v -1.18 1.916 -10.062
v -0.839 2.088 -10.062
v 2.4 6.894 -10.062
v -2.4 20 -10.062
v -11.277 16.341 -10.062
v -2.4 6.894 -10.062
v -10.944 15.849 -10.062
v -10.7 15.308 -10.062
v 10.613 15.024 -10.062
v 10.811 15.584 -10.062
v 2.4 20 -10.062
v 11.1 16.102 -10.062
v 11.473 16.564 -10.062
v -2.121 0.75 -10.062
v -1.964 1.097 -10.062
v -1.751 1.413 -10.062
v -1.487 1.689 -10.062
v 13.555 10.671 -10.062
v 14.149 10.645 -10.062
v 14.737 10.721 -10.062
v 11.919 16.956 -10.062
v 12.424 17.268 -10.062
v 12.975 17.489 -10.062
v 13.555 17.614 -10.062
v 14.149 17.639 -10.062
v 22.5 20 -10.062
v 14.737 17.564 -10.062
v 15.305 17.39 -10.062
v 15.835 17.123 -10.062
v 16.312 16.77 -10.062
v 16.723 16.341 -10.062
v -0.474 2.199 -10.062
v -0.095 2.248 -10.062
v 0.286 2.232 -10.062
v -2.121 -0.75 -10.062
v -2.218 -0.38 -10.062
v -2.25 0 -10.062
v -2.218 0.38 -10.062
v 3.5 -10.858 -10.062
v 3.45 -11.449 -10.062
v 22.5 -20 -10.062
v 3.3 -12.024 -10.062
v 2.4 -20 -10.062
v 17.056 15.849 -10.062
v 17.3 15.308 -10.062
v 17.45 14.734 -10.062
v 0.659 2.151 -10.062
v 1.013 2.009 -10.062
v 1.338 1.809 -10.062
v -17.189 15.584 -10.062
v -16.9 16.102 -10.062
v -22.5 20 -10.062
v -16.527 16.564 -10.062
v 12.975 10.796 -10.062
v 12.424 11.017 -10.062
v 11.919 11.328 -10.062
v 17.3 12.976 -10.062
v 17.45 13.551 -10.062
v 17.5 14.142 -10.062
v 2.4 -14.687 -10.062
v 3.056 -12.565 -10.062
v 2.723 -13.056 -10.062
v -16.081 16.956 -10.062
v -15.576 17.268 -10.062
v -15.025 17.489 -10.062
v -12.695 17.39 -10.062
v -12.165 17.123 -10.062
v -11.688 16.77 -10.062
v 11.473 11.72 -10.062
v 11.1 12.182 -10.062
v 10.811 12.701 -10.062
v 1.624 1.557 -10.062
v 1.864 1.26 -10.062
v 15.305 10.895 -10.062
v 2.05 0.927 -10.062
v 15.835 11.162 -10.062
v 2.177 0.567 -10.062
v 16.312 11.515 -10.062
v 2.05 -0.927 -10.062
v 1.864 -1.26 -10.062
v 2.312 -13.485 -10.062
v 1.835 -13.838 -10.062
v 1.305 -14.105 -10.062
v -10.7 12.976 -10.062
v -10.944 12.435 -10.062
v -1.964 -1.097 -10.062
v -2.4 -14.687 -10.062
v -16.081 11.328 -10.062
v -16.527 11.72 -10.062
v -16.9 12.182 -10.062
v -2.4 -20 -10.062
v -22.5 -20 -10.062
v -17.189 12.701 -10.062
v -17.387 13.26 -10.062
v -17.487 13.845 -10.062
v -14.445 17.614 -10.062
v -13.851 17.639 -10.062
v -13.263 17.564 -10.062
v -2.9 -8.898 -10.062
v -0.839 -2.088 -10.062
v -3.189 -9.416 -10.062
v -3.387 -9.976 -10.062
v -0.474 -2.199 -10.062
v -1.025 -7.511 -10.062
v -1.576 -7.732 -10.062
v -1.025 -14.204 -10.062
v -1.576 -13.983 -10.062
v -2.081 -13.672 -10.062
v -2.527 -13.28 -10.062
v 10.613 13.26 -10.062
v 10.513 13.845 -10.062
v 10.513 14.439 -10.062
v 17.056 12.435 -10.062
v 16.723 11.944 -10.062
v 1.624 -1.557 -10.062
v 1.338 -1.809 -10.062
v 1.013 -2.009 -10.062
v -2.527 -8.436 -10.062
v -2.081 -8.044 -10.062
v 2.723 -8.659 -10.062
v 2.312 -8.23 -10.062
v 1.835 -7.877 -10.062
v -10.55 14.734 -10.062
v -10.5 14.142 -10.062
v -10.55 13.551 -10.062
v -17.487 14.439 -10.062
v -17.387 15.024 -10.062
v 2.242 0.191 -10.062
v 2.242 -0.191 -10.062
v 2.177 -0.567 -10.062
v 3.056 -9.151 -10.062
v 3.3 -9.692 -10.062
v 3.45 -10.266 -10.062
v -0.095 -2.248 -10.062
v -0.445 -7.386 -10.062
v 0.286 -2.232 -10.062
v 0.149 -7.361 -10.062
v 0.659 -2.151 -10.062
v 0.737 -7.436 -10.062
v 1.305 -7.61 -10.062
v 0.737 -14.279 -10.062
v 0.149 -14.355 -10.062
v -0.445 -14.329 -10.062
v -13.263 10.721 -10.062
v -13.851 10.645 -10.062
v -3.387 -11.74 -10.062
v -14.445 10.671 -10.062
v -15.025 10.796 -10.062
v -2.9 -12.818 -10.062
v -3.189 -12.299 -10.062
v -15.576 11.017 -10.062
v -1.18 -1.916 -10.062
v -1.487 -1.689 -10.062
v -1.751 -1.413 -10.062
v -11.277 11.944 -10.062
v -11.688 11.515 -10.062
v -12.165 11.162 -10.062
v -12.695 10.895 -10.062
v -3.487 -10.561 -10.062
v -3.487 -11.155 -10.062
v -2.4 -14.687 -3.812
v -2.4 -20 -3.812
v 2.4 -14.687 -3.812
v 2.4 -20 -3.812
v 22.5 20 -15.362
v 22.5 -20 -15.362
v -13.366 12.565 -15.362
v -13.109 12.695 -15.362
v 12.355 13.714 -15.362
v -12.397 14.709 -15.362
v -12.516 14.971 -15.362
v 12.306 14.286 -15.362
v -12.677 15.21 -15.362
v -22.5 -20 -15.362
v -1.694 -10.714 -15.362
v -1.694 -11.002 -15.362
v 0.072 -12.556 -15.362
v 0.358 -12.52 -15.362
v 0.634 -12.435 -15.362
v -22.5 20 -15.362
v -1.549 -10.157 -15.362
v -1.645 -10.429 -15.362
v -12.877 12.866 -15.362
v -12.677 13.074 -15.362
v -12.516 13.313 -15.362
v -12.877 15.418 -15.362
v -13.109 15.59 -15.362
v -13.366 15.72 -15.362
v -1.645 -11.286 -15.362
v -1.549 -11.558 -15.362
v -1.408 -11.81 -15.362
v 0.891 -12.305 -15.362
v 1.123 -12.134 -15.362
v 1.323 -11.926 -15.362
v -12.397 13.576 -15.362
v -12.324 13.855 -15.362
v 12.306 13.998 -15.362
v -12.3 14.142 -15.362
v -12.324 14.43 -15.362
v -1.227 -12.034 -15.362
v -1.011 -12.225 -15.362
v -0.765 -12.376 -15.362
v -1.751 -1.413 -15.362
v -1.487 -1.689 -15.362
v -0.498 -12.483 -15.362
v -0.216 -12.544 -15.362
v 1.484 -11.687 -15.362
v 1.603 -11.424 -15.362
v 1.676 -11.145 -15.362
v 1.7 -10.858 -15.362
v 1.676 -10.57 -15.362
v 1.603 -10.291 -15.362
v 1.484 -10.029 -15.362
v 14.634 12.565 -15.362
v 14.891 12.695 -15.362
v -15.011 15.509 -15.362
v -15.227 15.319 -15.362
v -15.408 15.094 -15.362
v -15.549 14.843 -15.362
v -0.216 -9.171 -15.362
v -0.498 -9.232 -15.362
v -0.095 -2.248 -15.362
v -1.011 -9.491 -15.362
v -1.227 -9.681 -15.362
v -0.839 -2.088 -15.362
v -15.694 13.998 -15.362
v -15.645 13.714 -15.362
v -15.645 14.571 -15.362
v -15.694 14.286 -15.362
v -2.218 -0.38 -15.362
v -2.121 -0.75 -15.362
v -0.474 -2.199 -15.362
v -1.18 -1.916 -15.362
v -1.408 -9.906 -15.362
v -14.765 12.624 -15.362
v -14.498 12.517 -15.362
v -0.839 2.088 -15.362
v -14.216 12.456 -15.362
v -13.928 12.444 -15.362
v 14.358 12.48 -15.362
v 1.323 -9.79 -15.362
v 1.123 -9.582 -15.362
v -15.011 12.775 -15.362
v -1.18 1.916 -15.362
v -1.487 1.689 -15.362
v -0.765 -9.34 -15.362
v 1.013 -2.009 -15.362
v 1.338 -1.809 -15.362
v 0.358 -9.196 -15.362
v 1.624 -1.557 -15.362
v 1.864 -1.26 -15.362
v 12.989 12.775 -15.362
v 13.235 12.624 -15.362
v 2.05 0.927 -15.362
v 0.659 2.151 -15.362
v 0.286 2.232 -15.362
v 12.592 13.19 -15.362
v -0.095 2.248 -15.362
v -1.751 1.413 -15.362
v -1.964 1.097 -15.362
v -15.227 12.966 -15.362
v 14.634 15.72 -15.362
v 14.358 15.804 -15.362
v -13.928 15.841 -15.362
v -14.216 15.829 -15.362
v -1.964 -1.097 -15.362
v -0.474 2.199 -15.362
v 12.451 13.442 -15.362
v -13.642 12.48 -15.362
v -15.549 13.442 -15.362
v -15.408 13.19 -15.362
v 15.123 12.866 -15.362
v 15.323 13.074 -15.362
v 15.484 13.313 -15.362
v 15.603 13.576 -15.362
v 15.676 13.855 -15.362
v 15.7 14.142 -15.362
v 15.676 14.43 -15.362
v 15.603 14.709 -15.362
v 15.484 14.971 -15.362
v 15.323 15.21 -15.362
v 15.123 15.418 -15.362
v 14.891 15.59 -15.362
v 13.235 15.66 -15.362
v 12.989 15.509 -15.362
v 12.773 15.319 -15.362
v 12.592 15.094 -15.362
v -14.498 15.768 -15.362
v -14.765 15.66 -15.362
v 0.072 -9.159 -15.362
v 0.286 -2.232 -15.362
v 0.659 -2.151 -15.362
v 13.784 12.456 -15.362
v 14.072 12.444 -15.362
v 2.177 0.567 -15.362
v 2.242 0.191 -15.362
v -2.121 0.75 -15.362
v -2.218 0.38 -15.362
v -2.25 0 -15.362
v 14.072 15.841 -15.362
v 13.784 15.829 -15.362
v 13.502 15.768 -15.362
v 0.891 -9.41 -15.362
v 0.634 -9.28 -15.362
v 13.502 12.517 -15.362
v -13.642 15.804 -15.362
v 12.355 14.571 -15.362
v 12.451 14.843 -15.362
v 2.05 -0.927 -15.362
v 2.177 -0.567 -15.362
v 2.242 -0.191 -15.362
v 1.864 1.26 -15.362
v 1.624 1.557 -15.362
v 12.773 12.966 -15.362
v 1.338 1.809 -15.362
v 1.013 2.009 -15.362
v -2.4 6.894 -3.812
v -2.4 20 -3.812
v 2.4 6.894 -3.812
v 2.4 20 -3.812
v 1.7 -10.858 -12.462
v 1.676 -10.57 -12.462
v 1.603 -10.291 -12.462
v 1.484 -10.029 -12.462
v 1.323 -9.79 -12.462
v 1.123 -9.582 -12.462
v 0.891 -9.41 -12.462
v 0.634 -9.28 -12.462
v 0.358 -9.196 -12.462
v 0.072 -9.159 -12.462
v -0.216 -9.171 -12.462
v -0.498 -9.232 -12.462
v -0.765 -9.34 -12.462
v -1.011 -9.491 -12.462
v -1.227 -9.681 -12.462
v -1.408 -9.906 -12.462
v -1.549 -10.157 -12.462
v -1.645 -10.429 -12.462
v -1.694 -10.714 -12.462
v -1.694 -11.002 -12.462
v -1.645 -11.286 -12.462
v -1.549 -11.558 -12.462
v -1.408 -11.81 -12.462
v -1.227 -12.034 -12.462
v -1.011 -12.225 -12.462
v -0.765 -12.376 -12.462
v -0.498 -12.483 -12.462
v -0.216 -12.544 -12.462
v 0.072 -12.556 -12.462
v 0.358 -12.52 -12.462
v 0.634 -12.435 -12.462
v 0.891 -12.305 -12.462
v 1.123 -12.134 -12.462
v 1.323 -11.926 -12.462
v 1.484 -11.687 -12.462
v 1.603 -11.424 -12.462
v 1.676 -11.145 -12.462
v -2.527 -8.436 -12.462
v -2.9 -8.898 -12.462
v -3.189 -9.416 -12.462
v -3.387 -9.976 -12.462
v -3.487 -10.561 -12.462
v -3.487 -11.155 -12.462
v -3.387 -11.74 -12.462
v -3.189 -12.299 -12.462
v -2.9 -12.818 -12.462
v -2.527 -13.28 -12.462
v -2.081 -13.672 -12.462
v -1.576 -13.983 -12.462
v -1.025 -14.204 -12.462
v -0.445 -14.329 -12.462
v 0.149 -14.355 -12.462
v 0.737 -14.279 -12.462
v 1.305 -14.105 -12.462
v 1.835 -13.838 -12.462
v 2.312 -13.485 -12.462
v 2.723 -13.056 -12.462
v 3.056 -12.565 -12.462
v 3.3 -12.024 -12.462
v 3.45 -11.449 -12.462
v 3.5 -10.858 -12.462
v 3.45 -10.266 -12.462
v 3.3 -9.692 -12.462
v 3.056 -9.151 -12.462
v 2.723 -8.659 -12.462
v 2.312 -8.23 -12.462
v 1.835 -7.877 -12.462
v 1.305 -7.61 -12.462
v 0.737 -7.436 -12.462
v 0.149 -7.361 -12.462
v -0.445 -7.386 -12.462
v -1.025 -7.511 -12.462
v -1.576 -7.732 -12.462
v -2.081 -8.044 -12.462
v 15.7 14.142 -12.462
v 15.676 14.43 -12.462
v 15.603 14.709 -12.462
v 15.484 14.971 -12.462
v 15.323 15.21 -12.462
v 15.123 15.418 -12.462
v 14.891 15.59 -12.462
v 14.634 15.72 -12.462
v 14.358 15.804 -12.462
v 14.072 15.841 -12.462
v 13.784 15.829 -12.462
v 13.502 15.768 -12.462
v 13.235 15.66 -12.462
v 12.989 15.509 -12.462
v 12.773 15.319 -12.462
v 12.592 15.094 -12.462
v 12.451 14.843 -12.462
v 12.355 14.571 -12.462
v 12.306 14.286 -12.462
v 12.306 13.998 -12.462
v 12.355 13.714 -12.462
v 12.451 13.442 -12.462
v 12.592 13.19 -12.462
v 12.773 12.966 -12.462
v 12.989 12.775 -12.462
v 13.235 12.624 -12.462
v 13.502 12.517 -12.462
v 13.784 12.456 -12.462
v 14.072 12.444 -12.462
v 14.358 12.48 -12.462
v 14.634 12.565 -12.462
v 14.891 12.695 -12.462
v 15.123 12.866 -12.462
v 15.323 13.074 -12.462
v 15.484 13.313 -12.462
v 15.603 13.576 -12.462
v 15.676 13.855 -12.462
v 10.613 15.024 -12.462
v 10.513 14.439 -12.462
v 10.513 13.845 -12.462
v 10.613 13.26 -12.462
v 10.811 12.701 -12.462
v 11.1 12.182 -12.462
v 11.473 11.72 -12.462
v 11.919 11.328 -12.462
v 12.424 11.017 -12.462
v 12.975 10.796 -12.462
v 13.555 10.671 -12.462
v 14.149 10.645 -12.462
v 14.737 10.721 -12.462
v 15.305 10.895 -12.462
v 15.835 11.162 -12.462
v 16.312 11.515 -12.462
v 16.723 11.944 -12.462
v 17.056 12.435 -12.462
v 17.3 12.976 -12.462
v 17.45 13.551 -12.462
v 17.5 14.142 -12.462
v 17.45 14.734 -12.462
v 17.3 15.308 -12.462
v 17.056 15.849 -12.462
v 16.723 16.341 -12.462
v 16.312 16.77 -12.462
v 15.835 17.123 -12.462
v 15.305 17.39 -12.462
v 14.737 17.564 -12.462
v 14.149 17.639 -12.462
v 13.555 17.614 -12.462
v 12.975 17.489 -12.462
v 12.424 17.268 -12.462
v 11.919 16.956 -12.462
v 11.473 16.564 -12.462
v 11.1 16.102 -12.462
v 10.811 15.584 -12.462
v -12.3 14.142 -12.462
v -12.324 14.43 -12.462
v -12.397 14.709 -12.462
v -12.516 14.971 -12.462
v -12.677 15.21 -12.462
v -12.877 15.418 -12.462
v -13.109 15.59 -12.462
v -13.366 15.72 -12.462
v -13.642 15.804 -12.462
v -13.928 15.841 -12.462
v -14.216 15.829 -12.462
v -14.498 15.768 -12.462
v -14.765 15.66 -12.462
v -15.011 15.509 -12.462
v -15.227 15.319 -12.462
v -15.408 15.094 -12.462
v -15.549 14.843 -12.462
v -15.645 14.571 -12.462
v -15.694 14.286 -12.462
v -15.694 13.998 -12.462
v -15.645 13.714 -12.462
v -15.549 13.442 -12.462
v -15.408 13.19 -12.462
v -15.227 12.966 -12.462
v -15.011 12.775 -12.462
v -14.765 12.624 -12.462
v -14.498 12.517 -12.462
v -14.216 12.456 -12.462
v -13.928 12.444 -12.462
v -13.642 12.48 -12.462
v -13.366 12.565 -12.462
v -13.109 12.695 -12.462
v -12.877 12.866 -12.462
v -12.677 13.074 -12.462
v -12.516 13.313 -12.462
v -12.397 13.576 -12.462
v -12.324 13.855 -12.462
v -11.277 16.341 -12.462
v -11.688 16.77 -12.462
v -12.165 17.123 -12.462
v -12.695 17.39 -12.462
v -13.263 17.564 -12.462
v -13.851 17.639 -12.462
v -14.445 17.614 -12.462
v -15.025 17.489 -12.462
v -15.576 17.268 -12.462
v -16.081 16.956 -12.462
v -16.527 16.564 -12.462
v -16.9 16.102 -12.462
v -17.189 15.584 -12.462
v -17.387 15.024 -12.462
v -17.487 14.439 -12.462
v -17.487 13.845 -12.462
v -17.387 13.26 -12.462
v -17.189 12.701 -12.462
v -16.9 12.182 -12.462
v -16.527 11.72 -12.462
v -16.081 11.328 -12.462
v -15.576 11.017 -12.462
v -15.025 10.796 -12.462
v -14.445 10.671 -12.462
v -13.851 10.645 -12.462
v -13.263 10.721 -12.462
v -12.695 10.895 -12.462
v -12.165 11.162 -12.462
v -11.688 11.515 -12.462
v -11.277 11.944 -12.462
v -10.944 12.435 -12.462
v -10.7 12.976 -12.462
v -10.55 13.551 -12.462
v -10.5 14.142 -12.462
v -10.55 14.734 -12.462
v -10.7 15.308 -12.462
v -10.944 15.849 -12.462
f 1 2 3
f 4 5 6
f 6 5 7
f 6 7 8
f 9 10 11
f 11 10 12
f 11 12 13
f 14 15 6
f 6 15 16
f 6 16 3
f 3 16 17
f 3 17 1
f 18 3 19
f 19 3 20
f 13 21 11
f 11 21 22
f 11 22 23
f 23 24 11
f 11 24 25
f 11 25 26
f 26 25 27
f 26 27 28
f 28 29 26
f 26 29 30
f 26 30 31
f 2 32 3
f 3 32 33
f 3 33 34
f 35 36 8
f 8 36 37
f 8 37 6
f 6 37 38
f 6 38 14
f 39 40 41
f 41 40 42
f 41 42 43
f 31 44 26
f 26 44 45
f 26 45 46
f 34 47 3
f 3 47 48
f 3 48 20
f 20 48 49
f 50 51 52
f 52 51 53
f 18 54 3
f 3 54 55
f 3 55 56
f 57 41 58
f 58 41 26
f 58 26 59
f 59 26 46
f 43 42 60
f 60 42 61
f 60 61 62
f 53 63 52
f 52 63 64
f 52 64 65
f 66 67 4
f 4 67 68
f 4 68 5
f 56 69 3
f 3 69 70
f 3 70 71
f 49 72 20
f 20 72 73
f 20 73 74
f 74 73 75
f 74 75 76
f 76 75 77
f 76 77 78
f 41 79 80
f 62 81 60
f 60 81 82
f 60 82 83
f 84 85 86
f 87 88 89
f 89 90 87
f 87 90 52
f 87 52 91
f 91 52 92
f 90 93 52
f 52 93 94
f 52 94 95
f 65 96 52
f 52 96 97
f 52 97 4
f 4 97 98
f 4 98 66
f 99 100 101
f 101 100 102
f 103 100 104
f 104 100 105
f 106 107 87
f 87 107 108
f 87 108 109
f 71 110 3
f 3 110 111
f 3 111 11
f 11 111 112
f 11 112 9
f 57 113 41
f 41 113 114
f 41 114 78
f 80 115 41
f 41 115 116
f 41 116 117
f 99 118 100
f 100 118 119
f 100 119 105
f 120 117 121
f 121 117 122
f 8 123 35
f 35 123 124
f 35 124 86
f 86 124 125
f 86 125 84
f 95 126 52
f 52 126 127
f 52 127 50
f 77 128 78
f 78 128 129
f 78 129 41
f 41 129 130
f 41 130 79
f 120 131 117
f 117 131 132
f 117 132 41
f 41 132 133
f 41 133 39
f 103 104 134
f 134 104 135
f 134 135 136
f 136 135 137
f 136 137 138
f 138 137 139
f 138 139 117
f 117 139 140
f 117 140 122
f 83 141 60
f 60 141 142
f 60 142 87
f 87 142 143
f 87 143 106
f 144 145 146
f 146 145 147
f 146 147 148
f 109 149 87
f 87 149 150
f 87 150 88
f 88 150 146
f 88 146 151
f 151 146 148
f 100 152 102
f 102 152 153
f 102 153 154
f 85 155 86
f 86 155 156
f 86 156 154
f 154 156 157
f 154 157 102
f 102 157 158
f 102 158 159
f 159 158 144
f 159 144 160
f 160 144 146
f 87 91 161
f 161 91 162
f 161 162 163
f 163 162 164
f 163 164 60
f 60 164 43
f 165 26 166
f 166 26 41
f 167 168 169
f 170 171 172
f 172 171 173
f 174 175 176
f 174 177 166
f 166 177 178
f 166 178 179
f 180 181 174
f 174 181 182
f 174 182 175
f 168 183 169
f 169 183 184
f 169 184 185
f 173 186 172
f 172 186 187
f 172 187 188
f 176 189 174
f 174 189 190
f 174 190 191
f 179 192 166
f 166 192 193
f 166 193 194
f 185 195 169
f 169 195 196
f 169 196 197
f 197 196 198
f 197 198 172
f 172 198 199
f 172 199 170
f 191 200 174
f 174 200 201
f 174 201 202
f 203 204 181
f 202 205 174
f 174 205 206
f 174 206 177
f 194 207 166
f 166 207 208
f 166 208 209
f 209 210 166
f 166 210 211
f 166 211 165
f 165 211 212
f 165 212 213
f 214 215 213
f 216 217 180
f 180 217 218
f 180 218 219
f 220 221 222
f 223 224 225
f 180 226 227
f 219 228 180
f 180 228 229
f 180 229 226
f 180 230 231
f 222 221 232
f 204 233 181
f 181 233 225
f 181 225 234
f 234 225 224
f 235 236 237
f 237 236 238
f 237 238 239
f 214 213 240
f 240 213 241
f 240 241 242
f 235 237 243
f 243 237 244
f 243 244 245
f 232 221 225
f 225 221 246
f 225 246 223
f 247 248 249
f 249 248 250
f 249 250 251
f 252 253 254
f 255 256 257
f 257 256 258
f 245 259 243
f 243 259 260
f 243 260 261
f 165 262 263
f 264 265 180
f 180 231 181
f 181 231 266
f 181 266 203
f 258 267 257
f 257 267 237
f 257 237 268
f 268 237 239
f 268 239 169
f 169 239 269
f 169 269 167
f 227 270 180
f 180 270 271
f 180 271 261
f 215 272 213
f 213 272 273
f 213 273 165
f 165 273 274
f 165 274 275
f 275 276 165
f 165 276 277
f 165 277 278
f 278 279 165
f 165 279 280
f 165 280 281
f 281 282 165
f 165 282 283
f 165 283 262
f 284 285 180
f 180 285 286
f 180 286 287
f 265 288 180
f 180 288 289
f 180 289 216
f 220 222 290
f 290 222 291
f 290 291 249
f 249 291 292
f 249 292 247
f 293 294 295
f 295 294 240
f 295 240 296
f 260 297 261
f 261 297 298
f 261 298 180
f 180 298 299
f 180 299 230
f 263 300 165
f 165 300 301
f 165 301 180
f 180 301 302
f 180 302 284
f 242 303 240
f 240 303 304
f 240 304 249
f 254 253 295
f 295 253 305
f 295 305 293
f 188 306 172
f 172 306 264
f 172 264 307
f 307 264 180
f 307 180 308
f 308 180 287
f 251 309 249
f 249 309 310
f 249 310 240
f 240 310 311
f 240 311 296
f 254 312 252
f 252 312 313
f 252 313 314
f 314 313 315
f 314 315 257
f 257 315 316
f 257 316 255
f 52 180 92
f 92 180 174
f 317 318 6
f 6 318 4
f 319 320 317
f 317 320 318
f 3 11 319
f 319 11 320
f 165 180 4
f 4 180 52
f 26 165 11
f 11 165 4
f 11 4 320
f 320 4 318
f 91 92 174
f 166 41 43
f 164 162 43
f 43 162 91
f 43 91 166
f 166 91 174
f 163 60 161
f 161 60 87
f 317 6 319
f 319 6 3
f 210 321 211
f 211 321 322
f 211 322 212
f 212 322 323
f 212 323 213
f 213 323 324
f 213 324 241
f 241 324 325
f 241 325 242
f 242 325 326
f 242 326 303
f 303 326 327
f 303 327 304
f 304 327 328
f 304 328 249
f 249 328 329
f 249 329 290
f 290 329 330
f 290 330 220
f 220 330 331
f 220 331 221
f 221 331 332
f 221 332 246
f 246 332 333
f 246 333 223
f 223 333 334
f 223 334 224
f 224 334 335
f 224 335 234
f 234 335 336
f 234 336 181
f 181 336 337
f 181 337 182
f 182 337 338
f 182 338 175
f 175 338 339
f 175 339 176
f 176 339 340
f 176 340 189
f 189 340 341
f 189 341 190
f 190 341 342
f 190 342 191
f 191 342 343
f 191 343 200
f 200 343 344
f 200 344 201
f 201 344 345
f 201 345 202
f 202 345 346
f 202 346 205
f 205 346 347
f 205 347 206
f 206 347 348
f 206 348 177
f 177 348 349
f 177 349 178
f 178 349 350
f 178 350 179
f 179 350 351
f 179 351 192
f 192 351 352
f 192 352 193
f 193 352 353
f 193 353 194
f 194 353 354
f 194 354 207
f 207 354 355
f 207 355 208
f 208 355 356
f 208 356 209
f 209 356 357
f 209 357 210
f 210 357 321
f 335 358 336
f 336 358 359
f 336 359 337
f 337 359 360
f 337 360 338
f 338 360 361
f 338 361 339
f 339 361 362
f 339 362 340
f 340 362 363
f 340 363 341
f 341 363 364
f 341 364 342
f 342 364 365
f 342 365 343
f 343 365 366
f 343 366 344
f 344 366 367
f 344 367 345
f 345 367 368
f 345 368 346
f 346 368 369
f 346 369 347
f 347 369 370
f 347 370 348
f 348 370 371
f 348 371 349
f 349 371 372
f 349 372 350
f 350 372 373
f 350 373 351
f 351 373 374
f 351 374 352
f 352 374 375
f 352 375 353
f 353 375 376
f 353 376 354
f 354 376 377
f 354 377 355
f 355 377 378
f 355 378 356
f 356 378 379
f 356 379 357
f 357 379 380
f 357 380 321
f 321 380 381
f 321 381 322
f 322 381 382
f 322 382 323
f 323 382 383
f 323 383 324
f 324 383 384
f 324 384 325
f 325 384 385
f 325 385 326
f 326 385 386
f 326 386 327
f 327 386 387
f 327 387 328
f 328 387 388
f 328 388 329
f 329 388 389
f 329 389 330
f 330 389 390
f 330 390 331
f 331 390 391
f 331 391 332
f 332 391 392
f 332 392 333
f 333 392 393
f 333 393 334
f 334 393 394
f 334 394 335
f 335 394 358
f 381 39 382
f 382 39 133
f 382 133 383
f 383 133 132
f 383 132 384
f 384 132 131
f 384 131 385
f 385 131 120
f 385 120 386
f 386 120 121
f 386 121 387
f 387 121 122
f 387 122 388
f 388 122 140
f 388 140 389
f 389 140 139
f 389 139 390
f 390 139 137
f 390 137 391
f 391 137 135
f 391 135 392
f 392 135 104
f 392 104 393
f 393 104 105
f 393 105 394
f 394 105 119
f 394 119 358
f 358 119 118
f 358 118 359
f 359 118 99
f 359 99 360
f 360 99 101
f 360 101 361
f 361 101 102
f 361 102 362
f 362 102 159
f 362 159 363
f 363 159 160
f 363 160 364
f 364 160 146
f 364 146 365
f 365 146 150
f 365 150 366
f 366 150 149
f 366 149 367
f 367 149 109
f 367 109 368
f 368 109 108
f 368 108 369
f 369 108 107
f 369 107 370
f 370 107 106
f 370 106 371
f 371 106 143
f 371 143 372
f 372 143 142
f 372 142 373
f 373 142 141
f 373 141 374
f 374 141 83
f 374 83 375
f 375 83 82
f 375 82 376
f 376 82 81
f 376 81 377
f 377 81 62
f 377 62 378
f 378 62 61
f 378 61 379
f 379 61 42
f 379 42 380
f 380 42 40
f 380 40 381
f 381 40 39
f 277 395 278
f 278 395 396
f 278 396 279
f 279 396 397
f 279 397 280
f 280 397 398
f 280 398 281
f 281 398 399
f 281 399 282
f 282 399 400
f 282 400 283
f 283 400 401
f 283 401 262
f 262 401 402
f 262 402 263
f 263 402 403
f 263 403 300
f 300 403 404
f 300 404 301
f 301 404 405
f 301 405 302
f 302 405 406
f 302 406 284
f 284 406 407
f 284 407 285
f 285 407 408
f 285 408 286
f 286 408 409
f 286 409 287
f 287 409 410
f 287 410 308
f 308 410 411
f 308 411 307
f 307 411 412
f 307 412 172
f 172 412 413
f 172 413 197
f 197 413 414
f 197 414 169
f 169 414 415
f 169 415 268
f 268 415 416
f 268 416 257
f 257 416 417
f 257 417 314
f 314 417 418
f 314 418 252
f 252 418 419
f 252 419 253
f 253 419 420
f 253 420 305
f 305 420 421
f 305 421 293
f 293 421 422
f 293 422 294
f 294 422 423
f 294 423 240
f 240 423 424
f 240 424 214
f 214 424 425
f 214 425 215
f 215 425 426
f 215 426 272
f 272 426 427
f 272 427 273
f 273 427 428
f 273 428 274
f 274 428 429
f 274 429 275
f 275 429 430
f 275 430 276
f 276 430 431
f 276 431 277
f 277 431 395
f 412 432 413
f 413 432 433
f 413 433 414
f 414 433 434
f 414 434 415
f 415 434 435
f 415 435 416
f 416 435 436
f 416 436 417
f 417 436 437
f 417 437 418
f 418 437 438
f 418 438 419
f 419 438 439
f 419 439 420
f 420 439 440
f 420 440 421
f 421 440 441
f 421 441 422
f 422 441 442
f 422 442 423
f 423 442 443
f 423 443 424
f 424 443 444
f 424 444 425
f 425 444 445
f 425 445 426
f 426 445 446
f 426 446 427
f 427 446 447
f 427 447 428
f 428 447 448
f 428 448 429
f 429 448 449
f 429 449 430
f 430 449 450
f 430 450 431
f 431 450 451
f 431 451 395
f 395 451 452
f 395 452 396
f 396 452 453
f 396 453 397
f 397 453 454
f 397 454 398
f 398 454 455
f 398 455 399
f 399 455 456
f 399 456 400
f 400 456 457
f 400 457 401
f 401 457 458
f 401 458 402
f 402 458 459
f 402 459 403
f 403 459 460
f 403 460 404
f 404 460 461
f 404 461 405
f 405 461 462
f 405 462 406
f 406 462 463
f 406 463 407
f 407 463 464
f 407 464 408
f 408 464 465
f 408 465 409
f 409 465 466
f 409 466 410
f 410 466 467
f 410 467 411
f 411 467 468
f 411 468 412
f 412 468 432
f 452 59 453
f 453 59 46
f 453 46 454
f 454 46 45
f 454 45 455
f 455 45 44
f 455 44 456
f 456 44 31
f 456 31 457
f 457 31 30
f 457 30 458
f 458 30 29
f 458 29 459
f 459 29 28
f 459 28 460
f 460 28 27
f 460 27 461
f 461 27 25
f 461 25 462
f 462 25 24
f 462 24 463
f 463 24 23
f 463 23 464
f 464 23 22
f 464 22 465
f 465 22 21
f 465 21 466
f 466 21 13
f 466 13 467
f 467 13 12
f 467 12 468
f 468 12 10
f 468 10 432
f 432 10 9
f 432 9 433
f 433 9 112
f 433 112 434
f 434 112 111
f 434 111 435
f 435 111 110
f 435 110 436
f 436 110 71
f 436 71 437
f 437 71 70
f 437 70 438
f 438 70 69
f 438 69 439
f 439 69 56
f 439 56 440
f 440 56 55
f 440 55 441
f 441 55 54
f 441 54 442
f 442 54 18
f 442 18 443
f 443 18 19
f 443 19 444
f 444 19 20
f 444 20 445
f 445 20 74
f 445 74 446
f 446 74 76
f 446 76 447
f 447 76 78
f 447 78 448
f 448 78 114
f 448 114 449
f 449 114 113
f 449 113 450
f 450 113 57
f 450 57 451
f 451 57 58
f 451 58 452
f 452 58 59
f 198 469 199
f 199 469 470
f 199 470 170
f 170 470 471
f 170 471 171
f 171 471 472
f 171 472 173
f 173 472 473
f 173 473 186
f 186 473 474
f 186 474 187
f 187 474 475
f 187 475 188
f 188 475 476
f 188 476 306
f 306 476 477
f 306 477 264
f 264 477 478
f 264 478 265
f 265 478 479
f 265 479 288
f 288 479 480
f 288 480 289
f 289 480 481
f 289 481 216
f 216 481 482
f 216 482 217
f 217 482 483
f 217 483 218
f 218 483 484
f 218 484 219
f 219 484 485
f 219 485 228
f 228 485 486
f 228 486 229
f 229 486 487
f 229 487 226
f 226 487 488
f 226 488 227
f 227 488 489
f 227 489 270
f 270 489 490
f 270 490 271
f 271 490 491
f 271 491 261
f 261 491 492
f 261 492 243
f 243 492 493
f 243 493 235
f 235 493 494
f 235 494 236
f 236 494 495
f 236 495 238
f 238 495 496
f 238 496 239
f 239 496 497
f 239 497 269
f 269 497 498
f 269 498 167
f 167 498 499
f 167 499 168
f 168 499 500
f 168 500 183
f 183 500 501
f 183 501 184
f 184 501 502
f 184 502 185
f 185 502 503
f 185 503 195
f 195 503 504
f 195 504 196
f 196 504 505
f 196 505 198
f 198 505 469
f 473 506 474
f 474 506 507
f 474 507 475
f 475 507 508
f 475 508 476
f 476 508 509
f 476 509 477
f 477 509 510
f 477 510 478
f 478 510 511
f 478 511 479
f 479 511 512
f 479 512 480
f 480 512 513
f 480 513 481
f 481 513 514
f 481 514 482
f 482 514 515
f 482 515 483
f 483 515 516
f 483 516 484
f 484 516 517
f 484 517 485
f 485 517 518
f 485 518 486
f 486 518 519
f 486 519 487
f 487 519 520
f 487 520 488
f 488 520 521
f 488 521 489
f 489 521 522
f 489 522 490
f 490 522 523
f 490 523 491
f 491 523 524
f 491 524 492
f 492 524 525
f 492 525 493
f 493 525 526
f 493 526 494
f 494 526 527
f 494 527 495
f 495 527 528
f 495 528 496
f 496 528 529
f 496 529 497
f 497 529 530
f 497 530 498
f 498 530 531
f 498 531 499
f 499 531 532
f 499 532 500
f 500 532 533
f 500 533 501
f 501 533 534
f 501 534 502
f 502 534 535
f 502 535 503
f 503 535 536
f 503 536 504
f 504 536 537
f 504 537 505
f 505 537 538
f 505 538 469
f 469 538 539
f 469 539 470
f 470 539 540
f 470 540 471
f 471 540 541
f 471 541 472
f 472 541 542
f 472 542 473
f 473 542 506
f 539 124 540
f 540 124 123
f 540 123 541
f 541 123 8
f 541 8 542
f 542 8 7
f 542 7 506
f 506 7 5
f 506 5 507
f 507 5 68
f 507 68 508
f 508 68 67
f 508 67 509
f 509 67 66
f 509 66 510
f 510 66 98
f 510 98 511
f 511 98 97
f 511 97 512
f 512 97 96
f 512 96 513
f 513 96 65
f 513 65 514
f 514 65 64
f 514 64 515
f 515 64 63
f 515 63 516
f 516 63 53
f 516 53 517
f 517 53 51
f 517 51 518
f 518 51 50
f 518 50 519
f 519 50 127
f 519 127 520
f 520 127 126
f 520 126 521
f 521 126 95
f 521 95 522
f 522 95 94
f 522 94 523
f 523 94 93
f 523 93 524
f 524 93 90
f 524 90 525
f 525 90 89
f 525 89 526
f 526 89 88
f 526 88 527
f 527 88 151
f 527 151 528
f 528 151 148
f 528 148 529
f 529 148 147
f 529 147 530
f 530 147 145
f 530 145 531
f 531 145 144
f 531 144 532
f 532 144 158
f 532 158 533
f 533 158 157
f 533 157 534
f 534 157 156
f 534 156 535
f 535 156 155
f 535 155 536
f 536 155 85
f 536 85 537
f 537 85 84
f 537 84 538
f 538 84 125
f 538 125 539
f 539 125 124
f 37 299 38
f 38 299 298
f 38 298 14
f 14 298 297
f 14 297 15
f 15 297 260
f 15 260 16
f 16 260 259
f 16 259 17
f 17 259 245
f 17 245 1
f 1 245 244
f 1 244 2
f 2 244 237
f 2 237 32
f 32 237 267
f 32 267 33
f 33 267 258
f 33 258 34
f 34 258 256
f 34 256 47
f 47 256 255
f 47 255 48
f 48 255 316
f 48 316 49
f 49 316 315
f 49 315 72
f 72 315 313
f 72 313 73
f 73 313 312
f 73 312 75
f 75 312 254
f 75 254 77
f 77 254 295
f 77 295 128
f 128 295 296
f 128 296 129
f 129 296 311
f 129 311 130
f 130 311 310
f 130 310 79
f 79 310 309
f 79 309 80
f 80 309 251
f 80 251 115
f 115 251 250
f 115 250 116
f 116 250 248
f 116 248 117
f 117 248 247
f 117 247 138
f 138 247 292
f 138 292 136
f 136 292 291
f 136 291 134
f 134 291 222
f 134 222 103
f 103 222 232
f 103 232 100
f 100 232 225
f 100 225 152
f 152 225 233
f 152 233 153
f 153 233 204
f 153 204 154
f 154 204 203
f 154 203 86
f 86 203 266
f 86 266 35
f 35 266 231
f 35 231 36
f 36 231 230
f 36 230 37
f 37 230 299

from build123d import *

# Parameters (mm, degrees)
BOSS_EXTRU_1_DEPTH                                 = 20
ESQUISSE19_W                                       = 4.8
ESQUISSE19_H                                       = 21.581272728
ENL_V_MAT_EXTRU_1_DEPTH                            = 6.25
CHAMBRAGE_POUR_VIS_T_TE_RONDE_BOMB_E_M_D           = 3.4
CHAMBRAGE_POUR_VIS_T_TE_RONDE_BOMB_E_M_CBORE_D     = 7
CHAMBRAGE_POUR_VIS_T_TE_RONDE_BOMB_E_M_CBORE_DEPTH = 2.4
D_GAGEMENT_M41_D                                   = 4.5


with BuildPart() as part:
    # Base → Boss.-Extru.1 (new, symmetric)
    with BuildSketch(Plane(origin=(0, 0, 0), x_dir=(1, 0, 0), z_dir=(0, 1, 0))):
        Polygon((-3, 10.061730862), (-2.4, 10.061730862), (-2.4, 3.811730862), (2.4, 3.811730862), (2.4, 10.061730862), (3, 10.061730862), (22.5, 10.061730862), (22.5, 15.361730862), (-22.5, 15.361730862), (-22.5, 10.061730862), align=None)
    extrude(amount=BOSS_EXTRU_1_DEPTH, both=True)

    # Esquisse19 → Enlèv. mat.-Extru.1 (cut)
    with BuildSketch(Plane.XY.offset(-3.811730862)):
        with Locations((0, -3.896618687)):
            Rectangle(ESQUISSE19_W, ESQUISSE19_H)
    extrude(amount=-ENL_V_MAT_EXTRU_1_DEPTH, mode=Mode.SUBTRACT)

    # Chambrage pour vis à tête ronde bombée M31 (through all)
    with Locations(Plane.XY.offset(-10.061730862)):
        with Locations((-14, 14.142273416), (14, 14.142273416), (0, -10.857726584)):
            CounterBoreHole(CHAMBRAGE_POUR_VIS_T_TE_RONDE_BOMB_E_M_D / 2, CHAMBRAGE_POUR_VIS_T_TE_RONDE_BOMB_E_M_CBORE_D / 2, CHAMBRAGE_POUR_VIS_T_TE_RONDE_BOMB_E_M_CBORE_DEPTH)

    # Dégagement M41 (through all)
    with Locations(Plane(origin=(0, 0, -15.361730862), x_dir=(-1, 0, 0), z_dir=(0, 0, -1))):
        with Locations((0, 0)):
            Hole(D_GAGEMENT_M41_D / 2)


solid = part.part
